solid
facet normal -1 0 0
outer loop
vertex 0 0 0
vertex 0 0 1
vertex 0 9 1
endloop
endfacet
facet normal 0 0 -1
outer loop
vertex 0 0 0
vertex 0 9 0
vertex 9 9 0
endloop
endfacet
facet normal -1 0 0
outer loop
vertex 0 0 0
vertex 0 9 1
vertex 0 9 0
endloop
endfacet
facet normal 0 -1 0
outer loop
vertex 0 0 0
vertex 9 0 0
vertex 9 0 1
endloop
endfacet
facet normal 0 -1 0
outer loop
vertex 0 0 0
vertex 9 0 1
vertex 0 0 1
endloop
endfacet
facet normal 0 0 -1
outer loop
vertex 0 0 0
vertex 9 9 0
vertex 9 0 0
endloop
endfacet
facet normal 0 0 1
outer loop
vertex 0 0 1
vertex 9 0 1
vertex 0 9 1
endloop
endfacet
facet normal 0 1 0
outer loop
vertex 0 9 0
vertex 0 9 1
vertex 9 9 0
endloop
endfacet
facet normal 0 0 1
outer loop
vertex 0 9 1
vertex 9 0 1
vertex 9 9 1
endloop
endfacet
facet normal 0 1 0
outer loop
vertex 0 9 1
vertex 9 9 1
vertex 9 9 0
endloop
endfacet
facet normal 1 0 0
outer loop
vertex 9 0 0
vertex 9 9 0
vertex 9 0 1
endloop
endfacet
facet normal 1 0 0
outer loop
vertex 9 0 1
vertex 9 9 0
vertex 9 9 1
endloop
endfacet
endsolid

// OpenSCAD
/* Warning, this is a very basic generator with a lot of approximation 
input data : [VQFN, AXC, 9x9x1.0mm, 80, , A, C04-25175A]
generated by com.zoubworld.electronics.cad.model3d.Basic
Date : Sun Feb 15 10:50:49 CET 2026
*/

//body
color("black")
translate([0,0,0])
cube([9.0,9.0,1.0], center=false);
